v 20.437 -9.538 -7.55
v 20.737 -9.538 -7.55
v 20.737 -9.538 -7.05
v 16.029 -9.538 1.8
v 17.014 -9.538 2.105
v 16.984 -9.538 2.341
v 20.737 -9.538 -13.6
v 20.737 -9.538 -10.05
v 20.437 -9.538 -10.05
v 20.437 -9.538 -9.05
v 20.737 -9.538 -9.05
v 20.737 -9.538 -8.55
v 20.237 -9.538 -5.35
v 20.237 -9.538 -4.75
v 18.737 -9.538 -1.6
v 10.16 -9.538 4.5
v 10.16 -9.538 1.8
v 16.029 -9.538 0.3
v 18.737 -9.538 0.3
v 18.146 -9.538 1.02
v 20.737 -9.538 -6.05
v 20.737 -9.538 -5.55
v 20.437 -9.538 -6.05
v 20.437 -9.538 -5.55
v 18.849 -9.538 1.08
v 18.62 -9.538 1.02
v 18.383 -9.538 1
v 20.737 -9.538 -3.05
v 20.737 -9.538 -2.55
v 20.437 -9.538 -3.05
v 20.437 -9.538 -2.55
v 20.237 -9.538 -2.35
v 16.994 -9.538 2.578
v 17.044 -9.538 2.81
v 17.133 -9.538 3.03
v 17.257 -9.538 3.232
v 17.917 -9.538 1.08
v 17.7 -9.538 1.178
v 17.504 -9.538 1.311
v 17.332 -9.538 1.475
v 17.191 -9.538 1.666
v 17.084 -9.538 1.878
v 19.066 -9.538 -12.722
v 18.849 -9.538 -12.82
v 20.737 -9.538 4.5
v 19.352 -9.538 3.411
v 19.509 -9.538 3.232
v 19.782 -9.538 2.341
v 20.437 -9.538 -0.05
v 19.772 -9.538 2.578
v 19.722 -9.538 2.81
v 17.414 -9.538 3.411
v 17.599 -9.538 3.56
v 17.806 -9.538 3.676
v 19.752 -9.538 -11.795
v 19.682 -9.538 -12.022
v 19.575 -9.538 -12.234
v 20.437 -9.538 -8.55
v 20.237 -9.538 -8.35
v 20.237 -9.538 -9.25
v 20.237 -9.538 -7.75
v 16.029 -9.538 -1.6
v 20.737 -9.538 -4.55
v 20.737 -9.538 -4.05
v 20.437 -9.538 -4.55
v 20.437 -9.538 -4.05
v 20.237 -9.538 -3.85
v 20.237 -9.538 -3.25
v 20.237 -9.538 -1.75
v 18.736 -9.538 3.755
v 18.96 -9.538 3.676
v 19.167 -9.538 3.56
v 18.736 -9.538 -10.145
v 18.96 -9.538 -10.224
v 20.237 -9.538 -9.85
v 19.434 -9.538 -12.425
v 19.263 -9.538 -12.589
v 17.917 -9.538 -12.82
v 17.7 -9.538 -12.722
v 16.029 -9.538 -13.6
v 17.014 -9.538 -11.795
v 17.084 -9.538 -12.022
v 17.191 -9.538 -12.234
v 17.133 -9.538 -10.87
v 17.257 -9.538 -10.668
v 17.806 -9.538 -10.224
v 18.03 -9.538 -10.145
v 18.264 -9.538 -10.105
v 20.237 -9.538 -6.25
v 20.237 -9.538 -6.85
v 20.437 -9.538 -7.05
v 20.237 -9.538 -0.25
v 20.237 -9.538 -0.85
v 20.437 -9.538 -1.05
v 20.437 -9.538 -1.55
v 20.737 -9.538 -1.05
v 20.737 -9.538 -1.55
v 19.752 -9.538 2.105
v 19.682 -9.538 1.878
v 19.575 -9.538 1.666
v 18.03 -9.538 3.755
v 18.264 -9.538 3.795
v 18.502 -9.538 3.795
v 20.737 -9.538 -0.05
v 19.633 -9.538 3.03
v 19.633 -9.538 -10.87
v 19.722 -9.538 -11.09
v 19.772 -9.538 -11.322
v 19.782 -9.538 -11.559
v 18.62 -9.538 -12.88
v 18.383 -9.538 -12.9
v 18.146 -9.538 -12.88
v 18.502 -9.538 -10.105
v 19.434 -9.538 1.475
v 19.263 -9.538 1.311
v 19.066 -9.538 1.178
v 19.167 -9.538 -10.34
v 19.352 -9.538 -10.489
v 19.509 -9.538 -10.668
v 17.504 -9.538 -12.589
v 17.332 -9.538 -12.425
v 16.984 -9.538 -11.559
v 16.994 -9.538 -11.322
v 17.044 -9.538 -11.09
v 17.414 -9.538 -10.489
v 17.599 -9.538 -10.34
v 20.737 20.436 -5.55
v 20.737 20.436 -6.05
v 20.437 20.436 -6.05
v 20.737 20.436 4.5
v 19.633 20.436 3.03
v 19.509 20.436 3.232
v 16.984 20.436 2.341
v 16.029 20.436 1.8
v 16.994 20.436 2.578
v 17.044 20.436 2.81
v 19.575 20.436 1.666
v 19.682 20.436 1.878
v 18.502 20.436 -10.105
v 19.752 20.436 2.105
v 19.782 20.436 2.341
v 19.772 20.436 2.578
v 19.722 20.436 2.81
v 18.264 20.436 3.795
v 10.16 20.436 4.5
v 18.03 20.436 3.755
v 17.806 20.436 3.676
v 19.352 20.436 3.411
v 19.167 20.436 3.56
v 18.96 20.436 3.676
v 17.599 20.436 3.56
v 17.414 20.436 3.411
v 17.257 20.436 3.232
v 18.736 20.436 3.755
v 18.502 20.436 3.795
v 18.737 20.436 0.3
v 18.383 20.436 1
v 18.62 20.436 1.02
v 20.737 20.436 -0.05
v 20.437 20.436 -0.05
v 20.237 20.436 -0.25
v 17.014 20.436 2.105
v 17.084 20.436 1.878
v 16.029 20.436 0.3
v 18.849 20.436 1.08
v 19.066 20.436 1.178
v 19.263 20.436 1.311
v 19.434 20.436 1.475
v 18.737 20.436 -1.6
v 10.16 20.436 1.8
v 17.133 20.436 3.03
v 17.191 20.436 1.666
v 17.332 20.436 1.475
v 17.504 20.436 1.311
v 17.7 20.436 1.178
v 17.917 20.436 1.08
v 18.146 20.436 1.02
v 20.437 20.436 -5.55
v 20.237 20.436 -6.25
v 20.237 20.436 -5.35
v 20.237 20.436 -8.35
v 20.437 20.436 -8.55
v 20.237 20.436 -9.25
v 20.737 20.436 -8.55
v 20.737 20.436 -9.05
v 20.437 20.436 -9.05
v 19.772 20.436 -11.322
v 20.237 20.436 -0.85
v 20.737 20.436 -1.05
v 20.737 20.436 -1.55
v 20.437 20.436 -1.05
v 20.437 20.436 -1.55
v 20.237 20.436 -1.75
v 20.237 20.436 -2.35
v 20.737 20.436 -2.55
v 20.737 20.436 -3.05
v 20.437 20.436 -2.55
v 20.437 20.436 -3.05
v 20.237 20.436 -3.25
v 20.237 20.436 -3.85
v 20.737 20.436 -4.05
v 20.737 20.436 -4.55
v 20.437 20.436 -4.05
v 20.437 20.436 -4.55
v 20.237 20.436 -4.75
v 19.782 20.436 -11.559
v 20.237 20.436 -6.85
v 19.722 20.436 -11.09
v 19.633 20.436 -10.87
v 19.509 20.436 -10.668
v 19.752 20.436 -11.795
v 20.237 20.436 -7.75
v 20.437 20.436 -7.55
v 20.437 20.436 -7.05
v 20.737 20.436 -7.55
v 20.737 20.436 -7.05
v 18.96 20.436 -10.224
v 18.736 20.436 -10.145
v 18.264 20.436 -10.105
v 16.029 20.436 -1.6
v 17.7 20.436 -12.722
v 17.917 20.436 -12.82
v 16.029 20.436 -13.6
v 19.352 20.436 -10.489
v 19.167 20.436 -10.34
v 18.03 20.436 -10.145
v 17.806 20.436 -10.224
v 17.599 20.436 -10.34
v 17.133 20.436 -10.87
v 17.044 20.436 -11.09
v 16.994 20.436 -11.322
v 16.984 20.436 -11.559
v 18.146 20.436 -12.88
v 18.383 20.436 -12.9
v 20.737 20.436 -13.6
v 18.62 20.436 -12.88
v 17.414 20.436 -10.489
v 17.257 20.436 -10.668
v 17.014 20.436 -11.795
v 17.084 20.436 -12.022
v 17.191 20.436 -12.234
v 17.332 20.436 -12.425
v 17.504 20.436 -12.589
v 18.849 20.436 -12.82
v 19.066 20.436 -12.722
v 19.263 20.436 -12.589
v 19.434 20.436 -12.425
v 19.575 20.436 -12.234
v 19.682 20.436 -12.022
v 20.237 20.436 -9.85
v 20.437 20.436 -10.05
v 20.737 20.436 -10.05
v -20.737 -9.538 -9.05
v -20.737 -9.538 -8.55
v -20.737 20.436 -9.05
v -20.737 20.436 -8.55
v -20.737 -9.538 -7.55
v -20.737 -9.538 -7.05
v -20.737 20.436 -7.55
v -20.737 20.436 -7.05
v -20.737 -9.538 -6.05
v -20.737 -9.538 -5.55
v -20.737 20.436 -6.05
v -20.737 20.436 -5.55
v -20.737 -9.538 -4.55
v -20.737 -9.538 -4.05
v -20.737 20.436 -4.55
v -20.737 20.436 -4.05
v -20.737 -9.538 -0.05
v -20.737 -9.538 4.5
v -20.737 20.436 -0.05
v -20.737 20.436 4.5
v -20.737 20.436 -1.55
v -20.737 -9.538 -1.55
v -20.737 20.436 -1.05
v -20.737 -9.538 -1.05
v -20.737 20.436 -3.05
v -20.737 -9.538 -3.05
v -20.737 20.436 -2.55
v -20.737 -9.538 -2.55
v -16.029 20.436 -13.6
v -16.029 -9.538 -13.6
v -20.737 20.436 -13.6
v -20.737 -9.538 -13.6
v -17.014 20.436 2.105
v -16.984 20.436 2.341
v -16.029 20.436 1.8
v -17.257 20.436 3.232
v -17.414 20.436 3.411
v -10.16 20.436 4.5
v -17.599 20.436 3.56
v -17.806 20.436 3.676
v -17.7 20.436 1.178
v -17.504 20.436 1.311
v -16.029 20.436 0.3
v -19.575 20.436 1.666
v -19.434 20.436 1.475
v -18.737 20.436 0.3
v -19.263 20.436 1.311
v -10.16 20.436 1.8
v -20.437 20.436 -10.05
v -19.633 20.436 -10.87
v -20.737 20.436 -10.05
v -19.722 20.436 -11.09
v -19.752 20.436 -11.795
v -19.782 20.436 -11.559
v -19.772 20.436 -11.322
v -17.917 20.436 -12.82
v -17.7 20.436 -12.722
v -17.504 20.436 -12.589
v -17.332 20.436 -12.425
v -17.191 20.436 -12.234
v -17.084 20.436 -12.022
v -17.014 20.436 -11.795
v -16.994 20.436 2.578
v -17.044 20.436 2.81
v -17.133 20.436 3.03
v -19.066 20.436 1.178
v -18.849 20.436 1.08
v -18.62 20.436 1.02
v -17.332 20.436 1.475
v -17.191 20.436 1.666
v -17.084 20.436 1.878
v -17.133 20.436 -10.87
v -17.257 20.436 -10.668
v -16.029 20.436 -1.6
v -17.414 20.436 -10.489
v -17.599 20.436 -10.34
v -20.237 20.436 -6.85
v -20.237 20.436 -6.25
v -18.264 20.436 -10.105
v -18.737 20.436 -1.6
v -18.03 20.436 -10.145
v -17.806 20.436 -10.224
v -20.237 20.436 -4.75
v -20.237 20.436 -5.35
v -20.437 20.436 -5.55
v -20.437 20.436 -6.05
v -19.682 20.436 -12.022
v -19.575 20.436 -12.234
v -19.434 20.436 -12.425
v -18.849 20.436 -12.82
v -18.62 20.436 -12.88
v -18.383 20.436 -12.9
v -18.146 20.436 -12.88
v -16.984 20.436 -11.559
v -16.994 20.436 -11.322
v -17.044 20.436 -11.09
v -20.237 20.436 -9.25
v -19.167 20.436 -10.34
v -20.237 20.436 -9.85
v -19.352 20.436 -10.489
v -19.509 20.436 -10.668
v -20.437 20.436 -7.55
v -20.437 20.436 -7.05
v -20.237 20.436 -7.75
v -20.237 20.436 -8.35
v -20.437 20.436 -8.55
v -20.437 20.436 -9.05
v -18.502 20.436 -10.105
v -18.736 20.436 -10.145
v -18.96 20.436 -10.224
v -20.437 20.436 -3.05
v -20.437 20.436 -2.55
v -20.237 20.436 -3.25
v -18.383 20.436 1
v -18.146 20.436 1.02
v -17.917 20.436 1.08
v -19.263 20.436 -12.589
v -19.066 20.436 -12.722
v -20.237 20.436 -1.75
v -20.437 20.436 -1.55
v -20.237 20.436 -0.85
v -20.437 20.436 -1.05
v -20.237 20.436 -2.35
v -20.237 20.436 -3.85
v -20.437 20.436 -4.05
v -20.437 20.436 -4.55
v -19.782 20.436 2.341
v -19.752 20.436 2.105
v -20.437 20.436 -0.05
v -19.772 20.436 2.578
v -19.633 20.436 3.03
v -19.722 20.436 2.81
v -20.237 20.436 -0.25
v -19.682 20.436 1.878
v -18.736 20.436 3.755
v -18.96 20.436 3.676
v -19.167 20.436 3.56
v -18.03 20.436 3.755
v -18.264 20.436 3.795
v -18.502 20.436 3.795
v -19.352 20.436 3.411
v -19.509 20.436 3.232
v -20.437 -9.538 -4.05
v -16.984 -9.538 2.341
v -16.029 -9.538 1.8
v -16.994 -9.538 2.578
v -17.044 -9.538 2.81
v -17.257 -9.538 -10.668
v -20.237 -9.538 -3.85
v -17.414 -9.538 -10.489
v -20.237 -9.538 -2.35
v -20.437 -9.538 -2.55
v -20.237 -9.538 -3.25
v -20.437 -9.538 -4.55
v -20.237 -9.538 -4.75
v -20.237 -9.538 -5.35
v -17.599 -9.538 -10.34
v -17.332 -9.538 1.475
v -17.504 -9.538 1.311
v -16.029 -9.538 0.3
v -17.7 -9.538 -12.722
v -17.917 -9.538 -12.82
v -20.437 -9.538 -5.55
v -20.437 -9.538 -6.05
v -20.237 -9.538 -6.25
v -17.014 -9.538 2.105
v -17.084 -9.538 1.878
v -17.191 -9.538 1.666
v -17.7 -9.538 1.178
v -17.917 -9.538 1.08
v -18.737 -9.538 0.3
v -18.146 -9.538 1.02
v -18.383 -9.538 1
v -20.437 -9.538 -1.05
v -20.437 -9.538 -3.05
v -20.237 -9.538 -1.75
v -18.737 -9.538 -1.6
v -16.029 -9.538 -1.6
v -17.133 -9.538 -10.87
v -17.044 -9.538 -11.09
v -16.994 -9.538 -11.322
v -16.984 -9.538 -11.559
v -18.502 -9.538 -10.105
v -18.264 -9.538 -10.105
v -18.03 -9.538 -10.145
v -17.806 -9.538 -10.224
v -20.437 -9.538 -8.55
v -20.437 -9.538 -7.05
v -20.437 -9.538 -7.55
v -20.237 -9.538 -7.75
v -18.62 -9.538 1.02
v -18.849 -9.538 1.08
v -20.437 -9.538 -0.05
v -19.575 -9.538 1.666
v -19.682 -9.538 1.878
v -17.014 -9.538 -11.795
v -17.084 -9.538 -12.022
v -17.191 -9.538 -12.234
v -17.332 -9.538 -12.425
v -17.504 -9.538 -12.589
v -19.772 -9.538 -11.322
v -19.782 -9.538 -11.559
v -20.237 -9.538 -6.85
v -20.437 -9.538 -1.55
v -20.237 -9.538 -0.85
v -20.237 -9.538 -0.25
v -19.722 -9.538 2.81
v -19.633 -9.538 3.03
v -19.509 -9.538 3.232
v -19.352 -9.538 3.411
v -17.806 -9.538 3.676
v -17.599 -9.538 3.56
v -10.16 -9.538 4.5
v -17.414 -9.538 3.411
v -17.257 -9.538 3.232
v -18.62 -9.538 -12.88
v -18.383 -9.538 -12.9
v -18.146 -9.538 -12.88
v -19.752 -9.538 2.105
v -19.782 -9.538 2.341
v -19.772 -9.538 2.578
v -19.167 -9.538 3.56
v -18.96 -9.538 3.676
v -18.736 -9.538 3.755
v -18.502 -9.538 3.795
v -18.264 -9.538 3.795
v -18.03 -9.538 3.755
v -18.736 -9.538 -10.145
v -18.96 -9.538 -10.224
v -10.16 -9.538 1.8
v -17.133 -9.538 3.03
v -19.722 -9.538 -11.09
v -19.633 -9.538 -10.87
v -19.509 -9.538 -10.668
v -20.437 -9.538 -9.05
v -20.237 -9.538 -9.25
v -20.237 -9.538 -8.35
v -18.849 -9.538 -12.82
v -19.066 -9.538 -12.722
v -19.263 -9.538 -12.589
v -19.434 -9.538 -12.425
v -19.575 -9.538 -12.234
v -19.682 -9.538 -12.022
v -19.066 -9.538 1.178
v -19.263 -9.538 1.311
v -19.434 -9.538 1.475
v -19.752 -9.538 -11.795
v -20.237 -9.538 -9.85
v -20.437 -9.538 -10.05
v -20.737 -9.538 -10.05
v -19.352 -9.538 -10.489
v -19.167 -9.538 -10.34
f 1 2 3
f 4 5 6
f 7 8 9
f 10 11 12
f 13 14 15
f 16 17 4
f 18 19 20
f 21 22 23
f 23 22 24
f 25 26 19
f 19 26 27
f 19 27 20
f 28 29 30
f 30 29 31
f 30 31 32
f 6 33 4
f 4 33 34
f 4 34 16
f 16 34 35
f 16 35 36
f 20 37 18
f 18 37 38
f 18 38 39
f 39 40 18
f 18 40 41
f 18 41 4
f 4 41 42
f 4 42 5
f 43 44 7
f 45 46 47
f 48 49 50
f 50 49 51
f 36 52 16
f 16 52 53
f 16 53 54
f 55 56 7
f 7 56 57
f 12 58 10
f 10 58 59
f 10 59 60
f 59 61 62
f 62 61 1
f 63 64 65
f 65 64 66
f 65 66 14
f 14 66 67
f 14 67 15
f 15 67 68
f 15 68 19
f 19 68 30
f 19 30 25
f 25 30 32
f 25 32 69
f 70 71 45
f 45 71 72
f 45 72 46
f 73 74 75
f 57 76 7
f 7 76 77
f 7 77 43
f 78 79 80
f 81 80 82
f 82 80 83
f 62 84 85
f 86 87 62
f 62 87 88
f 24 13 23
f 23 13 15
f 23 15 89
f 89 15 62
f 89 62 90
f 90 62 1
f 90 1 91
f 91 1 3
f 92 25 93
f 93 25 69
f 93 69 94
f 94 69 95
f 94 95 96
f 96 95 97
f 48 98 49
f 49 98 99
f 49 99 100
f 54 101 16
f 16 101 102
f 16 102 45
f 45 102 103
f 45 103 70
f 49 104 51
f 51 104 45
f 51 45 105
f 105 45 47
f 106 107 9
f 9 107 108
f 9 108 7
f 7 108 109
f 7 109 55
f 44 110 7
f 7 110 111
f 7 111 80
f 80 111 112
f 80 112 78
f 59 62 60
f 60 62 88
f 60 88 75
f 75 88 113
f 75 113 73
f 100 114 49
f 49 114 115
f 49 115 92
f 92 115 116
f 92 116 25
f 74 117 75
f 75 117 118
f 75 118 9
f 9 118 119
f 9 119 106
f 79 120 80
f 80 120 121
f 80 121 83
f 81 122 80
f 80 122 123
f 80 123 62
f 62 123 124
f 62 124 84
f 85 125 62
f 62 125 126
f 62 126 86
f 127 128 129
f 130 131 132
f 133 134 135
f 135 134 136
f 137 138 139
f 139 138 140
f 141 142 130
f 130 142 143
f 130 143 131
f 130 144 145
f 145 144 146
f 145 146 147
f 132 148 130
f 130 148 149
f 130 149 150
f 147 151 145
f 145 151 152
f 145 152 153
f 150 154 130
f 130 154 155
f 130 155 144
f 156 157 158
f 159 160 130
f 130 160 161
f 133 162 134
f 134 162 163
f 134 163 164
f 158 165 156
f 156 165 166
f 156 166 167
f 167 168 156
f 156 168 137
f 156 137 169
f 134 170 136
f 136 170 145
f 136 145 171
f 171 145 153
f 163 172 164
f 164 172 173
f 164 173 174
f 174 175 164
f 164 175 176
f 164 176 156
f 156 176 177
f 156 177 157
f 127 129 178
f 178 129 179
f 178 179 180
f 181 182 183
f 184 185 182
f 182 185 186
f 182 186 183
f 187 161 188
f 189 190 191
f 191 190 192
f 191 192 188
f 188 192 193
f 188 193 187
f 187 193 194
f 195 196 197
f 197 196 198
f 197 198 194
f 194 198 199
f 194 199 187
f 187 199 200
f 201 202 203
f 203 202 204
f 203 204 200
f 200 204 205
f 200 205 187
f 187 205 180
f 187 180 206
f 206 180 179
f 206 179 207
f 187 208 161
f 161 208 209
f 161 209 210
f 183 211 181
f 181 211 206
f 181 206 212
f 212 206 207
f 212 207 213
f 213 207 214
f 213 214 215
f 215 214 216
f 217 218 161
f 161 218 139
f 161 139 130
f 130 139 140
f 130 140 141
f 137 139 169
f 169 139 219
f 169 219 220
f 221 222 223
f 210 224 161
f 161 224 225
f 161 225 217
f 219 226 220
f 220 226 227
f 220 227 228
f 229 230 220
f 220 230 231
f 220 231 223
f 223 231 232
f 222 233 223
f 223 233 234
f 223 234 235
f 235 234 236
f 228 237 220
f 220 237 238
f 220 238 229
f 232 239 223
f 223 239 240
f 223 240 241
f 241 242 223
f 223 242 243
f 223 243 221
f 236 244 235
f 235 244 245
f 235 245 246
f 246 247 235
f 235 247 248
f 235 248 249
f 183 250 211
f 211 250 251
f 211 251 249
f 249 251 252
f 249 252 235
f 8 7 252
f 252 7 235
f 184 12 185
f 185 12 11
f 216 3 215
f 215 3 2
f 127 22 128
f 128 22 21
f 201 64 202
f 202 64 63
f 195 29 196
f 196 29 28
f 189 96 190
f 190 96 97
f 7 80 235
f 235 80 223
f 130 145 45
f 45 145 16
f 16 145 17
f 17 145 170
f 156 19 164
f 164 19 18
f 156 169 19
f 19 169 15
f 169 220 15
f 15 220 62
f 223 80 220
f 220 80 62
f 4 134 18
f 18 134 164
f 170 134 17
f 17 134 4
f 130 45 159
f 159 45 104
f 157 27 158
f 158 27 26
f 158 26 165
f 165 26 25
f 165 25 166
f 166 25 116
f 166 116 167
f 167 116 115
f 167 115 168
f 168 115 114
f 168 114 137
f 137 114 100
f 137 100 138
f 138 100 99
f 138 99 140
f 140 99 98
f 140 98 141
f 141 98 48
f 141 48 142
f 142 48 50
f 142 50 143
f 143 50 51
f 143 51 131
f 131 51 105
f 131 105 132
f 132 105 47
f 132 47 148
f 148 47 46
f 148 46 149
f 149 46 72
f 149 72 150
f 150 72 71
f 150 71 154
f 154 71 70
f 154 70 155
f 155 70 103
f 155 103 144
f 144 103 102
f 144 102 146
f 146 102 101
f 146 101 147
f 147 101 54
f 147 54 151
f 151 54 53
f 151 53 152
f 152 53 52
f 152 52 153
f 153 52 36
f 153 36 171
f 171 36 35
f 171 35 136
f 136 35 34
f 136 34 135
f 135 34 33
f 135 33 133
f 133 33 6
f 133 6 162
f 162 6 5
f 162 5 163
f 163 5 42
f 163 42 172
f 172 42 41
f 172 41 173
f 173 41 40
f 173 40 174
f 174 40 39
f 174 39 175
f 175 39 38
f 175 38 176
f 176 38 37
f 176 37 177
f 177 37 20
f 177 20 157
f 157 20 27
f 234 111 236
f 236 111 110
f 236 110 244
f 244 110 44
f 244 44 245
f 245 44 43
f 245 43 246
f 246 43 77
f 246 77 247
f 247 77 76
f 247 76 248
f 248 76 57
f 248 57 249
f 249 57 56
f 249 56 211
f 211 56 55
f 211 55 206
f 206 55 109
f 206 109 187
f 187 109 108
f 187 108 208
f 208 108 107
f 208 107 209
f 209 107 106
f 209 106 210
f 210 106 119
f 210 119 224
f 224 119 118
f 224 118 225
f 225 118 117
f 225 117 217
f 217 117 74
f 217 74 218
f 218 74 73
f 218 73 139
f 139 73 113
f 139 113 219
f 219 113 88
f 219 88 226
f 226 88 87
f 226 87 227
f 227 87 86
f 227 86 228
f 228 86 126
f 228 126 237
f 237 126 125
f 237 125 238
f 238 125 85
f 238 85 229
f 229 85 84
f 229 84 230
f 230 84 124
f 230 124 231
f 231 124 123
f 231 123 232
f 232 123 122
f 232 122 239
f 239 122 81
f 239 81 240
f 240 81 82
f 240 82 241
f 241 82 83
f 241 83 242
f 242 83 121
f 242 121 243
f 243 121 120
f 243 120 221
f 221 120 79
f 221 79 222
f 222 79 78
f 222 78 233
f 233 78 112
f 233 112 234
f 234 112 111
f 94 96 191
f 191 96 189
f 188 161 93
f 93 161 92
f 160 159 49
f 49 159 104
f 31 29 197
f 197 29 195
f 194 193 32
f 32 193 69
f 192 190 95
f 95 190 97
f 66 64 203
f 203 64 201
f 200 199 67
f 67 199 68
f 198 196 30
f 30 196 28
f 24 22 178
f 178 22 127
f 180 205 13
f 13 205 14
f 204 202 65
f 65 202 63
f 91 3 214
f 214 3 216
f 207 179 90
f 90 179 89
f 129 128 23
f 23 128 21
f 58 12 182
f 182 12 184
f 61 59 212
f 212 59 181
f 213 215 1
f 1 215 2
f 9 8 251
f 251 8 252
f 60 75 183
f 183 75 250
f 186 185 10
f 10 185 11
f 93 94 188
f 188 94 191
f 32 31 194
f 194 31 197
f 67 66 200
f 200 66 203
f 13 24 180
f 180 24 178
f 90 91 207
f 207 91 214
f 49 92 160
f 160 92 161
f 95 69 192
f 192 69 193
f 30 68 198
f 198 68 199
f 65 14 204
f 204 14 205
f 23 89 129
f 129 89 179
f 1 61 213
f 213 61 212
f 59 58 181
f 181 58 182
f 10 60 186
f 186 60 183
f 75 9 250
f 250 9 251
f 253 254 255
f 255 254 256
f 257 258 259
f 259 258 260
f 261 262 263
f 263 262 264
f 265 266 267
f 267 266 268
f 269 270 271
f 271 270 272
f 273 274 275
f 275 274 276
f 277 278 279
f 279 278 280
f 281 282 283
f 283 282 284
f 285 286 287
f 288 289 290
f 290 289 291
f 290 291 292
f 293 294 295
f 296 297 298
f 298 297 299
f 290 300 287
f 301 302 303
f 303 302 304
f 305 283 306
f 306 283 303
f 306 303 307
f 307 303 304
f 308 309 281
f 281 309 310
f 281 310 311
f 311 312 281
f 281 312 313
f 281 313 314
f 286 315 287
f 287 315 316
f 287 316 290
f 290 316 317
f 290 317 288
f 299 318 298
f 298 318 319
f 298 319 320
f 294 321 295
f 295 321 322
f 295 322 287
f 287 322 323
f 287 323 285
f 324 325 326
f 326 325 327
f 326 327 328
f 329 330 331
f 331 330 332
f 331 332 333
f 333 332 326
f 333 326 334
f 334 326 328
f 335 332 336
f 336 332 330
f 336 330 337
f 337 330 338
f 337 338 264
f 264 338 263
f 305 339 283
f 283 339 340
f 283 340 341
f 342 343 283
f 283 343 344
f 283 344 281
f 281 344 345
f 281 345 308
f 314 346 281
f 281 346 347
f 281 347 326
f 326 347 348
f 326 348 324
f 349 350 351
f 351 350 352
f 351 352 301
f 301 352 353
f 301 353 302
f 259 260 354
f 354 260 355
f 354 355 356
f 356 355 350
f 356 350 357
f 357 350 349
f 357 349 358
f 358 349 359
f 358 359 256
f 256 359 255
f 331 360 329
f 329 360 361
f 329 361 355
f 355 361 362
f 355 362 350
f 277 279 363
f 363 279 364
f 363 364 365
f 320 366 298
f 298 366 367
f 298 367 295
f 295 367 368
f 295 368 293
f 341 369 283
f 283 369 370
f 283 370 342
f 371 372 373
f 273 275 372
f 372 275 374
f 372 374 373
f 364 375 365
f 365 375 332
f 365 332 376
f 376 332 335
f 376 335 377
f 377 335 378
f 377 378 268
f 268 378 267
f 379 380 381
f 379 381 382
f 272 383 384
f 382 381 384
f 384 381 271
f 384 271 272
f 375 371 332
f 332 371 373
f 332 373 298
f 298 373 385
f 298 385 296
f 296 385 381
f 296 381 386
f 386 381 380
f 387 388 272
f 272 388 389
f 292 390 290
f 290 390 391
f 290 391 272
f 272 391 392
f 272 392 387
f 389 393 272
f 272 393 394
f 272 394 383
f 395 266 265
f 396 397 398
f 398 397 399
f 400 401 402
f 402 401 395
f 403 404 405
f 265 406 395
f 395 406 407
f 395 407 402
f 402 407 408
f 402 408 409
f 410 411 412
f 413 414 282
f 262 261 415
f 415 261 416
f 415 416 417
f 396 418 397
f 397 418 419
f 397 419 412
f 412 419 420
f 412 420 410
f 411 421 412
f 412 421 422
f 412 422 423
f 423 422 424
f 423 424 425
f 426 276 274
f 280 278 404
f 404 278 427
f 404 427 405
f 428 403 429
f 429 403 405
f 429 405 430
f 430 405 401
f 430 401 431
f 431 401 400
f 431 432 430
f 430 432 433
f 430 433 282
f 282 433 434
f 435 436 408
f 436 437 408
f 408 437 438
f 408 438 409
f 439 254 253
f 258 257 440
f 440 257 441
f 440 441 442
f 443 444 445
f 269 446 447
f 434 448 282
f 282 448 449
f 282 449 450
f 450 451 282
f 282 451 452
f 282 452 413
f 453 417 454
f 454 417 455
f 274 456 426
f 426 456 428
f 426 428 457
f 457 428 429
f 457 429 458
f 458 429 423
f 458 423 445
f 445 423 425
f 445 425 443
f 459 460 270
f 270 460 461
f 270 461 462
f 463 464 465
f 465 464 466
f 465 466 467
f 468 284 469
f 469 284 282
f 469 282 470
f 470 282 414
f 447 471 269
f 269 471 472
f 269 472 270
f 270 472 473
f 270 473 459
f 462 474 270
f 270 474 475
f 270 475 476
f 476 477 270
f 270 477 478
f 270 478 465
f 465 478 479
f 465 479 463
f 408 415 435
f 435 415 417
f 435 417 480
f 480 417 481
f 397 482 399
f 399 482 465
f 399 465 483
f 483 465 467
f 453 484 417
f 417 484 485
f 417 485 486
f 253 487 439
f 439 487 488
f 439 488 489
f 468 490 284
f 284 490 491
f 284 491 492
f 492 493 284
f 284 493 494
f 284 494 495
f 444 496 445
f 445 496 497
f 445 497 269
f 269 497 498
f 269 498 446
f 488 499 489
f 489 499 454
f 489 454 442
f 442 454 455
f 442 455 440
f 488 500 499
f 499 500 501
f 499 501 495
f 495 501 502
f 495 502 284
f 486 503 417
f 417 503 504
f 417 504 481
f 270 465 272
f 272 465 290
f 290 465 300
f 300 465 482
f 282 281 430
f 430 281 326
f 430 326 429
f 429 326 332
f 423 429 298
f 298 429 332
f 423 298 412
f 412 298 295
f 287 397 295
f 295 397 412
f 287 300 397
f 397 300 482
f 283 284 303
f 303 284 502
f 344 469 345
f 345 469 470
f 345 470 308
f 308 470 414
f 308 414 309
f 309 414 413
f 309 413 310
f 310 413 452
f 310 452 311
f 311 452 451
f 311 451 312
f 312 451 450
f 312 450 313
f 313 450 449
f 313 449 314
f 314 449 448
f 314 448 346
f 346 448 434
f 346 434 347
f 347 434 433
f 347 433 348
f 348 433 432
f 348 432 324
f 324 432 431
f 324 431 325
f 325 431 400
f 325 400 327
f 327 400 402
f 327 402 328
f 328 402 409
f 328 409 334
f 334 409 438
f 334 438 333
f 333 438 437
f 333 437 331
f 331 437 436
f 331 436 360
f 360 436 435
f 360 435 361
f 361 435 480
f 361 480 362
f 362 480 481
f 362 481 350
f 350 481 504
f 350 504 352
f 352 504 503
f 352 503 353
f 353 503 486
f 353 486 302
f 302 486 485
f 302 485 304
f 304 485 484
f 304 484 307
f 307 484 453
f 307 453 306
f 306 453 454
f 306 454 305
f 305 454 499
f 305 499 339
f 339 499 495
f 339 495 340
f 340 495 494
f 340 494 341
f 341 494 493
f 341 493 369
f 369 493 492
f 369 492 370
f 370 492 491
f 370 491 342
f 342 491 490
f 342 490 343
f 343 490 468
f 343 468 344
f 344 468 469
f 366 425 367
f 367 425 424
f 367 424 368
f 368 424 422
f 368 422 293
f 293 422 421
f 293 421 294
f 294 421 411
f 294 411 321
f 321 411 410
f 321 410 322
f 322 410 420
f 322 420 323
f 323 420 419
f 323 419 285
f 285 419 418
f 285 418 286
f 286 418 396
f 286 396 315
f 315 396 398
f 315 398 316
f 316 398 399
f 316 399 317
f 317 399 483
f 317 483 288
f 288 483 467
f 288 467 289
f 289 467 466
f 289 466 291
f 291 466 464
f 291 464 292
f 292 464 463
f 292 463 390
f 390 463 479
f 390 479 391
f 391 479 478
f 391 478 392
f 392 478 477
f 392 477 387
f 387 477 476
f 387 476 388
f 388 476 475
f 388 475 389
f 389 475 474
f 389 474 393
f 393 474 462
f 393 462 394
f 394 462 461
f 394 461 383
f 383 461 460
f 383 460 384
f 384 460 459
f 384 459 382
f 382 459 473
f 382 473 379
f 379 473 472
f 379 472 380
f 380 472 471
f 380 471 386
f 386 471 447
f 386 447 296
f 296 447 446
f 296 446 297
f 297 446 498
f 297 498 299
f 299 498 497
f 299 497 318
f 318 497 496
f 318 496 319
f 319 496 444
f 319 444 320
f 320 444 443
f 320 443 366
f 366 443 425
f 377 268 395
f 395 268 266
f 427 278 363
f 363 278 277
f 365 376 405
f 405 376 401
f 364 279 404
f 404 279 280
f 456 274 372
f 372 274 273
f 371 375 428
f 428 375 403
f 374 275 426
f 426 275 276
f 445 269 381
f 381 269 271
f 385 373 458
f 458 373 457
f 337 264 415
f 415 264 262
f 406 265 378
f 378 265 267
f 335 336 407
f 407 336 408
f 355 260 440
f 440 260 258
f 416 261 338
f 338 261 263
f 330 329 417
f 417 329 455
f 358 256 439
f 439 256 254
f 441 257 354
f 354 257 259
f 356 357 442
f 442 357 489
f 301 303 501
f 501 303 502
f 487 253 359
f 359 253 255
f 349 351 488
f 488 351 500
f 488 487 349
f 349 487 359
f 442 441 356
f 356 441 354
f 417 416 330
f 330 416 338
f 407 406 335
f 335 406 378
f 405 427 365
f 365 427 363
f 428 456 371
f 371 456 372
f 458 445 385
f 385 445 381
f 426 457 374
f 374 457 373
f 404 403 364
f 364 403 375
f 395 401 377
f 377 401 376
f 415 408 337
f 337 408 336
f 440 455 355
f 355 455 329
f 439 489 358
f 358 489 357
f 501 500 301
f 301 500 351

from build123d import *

# Parameters (mm, degrees)
SKETCH_1_W          = 37.47467615
SKETCH_1_H          = 29.97466091
EXTRUDE_1_DEPTH     = 3
SKETCH_2_W          = 3
SKETCH_2_H          = 29.97466091
EXTRUDE_2_DEPTH     = 3
SKETCH_3_W          = 3
SKETCH_3_H          = 29.97466091
EXTRUDE_3_DEPTH     = 3
SKETCH_4_W          = 3
SKETCH_4_H          = 29.97466091
EXTRUDE_4_DEPTH     = 1.6
EXTRUDE_7_DEPTH     = 12.000023
SKETCH_7_W          = 37.47467615
SKETCH_7_H          = 29.97466091
CUT_EXTRUDE_1_DEPTH = 0.3
SKETCH_8_W          = 20.320035554
SKETCH_8_H          = 29.97466091
CUT_EXTRUDE_3_DEPTH = 2.7
SKETCH_9_W          = 5.86876683
SKETCH_9_H          = 29.97466091
CUT_EXTRUDE_4_DEPTH = 1.5
SKETCH_10_W         = 11.577320298
SKETCH_10_H         = 29.97466091
EXTRUDE_8_DEPTH     = 1.5
SKETCH_11_W         = 18.100023376
SKETCH_11_H         = 29.97466091
CUT_EXTRUDE_5_DEPTH = 1
SKETCH_12_W         = 18.100023376
SKETCH_12_H         = 29.97466091
CUT_EXTRUDE_6_DEPTH = 1
CUT_EXTRUDE_7_REACH = 40.903
SKETCH_14_R         = 1.4
CUT_EXTRUDE_8_REACH = 40.903
SKETCH_16_W         = 0.5
SKETCH_16_H         = 1
CHAMFER_1_SIZE      = 0.2
CHAMFER_2_SIZE      = 0.2


with BuildPart() as part:
    # 草图1 → 凸台-拉伸1 (new body)
    with BuildSketch(Plane.XY):
        with Locations((0, 5.449009398)):
            Rectangle(SKETCH_1_W, SKETCH_1_H)
    extrude(amount=EXTRUDE_1_DEPTH)

    # 草图2 → 凸台-拉伸2 (add)
    with BuildSketch(Plane.ZY.offset(18.737338075)):
        with Locations((1.5, 5.449009398)):
            Rectangle(SKETCH_2_W, SKETCH_2_H)
    extrude(amount=EXTRUDE_2_DEPTH)

    # 草图3 → 凸台-拉伸3 (add)
    with BuildSketch(Plane(origin=(18.737338075, 0, 0), x_dir=(0, 0, -1), z_dir=(1, 0, 0))):
        with Locations((-1.5, 5.449009398)):
            Rectangle(SKETCH_3_W, SKETCH_3_H)
    extrude(amount=EXTRUDE_3_DEPTH)

    # 草图4 → 凸台-拉伸4 (add)
    with BuildSketch(Plane(origin=(0, 0, 0), x_dir=(-1, 0, 0), z_dir=(0, 0, -1))):
        with Locations((-20.237338075, 5.449009398)):
            Rectangle(SKETCH_4_W, SKETCH_4_H)
        with Locations((20.237338075, 5.449009398)):
            Rectangle(SKETCH_4_W, SKETCH_4_H)
    extrude(amount=EXTRUDE_4_DEPTH)

    # 草图5 → 凸台-拉伸7 (add)
    with BuildSketch(Plane(origin=(0, 0, -1.6), x_dir=(-1, 0, 0), z_dir=(0, 0, -1))):
        Polygon((-18.737338075, -9.538321057), (-16.028784607, -9.538321057), (-16.028784607, 20.436339853), (-18.737338075, 20.436339853), (-21.737338075, 20.436339853), (-21.737338075, -9.538321057), align=None)
        Polygon((18.737338075, 20.436339853), (21.737338075, 20.436339853), (21.737338075, -9.538321057), (18.737338075, -9.538321057), (16.028784607, -9.538321057), (16.028784607, 20.436339853), align=None)
    extrude(amount=EXTRUDE_7_DEPTH)

    # 草图7 → 切除-拉伸1 (cut)
    with BuildSketch(Plane(origin=(0, 0, 0), x_dir=(-1, 0, 0), z_dir=(0, 0, -1))):
        with Locations((0, 5.449009398)):
            Rectangle(SKETCH_7_W, SKETCH_7_H)
    extrude(amount=-CUT_EXTRUDE_1_DEPTH, mode=Mode.SUBTRACT)

    # 草图8 → 切除-拉伸3 (cut)
    with BuildSketch(Plane.XY.offset(3)):
        with Locations((0, 5.449009398)):
            Rectangle(SKETCH_8_W, SKETCH_8_H)
    extrude(amount=-CUT_EXTRUDE_3_DEPTH, mode=Mode.SUBTRACT)


with BuildPart() as cut_extrude_3_piece_1:
    # of the separate pieces the step leaves, piece 1, a body of its own (cut_extrude_3_pieces)
    add(part.part.solids().sort_by_distance((-21.737338075, -9.538321057, 3))[0])


with BuildPart() as cut_extrude_3_piece_2:
    # of the separate pieces the step leaves, piece 2, a body of its own (cut_extrude_3_pieces)
    add(part.part.solids().sort_by_distance((10.160017777, -9.538321057, 3))[0])


with BuildPart() as cut_extrude_4_tool:
    # 草图9 → 切除-拉伸4 (new body)
    with BuildSketch(Plane(origin=(0, 0, 0.3), x_dir=(-1, 0, 0), z_dir=(0, 0, -1))):
        with Locations((13.094401192, 5.449009398)):
            Rectangle(SKETCH_9_W, SKETCH_9_H)
        with Locations((-13.094401192, 5.449009398)):
            Rectangle(SKETCH_9_W, SKETCH_9_H)
    extrude(amount=-CUT_EXTRUDE_4_DEPTH)


with BuildPart() as cut_extrude_3_piece_1_1:
    add(cut_extrude_3_piece_1.part)

    # 切除-拉伸4: cut by cut_extrude_4_tool
    add(cut_extrude_4_tool.part, mode=Mode.SUBTRACT)



with BuildPart() as cut_extrude_3_piece_2_1:
    add(cut_extrude_3_piece_2.part)

    # 切除-拉伸4: cut by cut_extrude_4_tool
    add(cut_extrude_4_tool.part, mode=Mode.SUBTRACT)


with BuildPart() as cut_extrude_3_piece_1_2:
    add(cut_extrude_3_piece_1_1.part)

    add(cut_extrude_3_piece_2_1.part)  # 凸台-拉伸8 merges 切除-拉伸3 piece 2
    # 草图10 → 凸台-拉伸8 (add)
    with BuildSketch(Plane.XY.offset(3)):
        with Locations((-15.948677926, 5.449009398)):
            Rectangle(SKETCH_10_W, SKETCH_10_H)
        with Locations((15.948677926, 5.449009398)):
            Rectangle(SKETCH_10_W, SKETCH_10_H)
    extrude(amount=EXTRUDE_8_DEPTH)

    # 草图11 → 切除-拉伸5 (cut)
    with BuildSketch(Plane(origin=(21.737338075, 0, 0), x_dir=(0, 0, -1), z_dir=(1, 0, 0))):
        with Locations((4.550011688, 5.449009398)):
            Rectangle(SKETCH_11_W, SKETCH_11_H)
    extrude(amount=-CUT_EXTRUDE_5_DEPTH, mode=Mode.SUBTRACT)

    # 草图12 → 切除-拉伸6 (cut)
    with BuildSketch(Plane.ZY.offset(21.737338075)):
        with Locations((-4.550011688, 5.449009398)):
            Rectangle(SKETCH_12_W, SKETCH_12_H)
    extrude(amount=-CUT_EXTRUDE_6_DEPTH, mode=Mode.SUBTRACT)

    # 草图14 → 切除-拉伸7 (cut, up to next)
    with BuildSketch(Plane.XZ.offset(9.538321057), mode=Mode.PRIVATE) as cut_extrude_7_sk1:
        with Locations(Location((18.383061341, -11.500023376, 0), (0, 0, 270))):
            Circle(SKETCH_14_R)
    cut_extrude_7_tool1 = extrude(cut_extrude_7_sk1.sketch, amount=-CUT_EXTRUDE_7_REACH, mode=Mode.PRIVATE) & cut_extrude_3_piece_1_2.part
    # 草图14 → 切除-拉伸7 (cut, up to next)
    with BuildSketch(Plane.XZ.offset(9.538321057), mode=Mode.PRIVATE) as cut_extrude_7_sk2:
        with Locations(Location((18.383061341, 2.4, 0), (0, 0, 270))):
            Circle(SKETCH_14_R)
    cut_extrude_7_tool2 = extrude(cut_extrude_7_sk2.sketch, amount=-CUT_EXTRUDE_7_REACH, mode=Mode.PRIVATE) & cut_extrude_3_piece_1_2.part
    # 草图14 → 切除-拉伸7 (cut, up to next)
    with BuildSketch(Plane.XZ.offset(9.538321057), mode=Mode.PRIVATE) as cut_extrude_7_sk3:
        with Locations(Location((-18.383061341, 2.4, 0), (0, 0, 270))):
            Circle(SKETCH_14_R)
    cut_extrude_7_tool3 = extrude(cut_extrude_7_sk3.sketch, amount=-CUT_EXTRUDE_7_REACH, mode=Mode.PRIVATE) & cut_extrude_3_piece_1_2.part
    # 草图14 → 切除-拉伸7 (cut, up to next)
    with BuildSketch(Plane.XZ.offset(9.538321057), mode=Mode.PRIVATE) as cut_extrude_7_sk4:
        with Locations(Location((-18.383061341, -11.500023376, 0), (0, 0, 270))):
            Circle(SKETCH_14_R)
    cut_extrude_7_tool4 = extrude(cut_extrude_7_sk4.sketch, amount=-CUT_EXTRUDE_7_REACH, mode=Mode.PRIVATE) & cut_extrude_3_piece_1_2.part
    add(cut_extrude_7_tool1.solids().sort_by_distance((18.383061, -9.538321, -11.500023))[0], mode=Mode.SUBTRACT)
    add(cut_extrude_7_tool2.solids().sort_by_distance((18.383061, -9.538321, 2.4))[0], mode=Mode.SUBTRACT)
    add(cut_extrude_7_tool3.solids().sort_by_distance((-18.383061, -9.538321, 2.4))[0], mode=Mode.SUBTRACT)
    add(cut_extrude_7_tool4.solids().sort_by_distance((-18.383061, -9.538321, -11.500023))[0], mode=Mode.SUBTRACT)

    # 草图16 → 切除-拉伸8 (cut, up to next)
    with BuildSketch(Plane.XZ.offset(9.538321057), mode=Mode.PRIVATE) as cut_extrude_8_sk1:
        with Locations((20.487338075, -9.550011688)):
            Rectangle(SKETCH_16_W, SKETCH_16_H)
    cut_extrude_8_tool1 = extrude(cut_extrude_8_sk1.sketch, amount=-CUT_EXTRUDE_8_REACH, mode=Mode.PRIVATE) & cut_extrude_3_piece_1_2.part
    # 草图16 → 切除-拉伸8 (cut, up to next)
    with BuildSketch(Plane.XZ.offset(9.538321057), mode=Mode.PRIVATE) as cut_extrude_8_sk2:
        with Locations((20.487338075, -8.050011688)):
            Rectangle(SKETCH_16_W, SKETCH_16_H)
    cut_extrude_8_tool2 = extrude(cut_extrude_8_sk2.sketch, amount=-CUT_EXTRUDE_8_REACH, mode=Mode.PRIVATE) & cut_extrude_3_piece_1_2.part
    # 草图16 → 切除-拉伸8 (cut, up to next)
    with BuildSketch(Plane.XZ.offset(9.538321057), mode=Mode.PRIVATE) as cut_extrude_8_sk3:
        with Locations((20.487338075, -6.550011688)):
            Rectangle(SKETCH_16_W, SKETCH_16_H)
    cut_extrude_8_tool3 = extrude(cut_extrude_8_sk3.sketch, amount=-CUT_EXTRUDE_8_REACH, mode=Mode.PRIVATE) & cut_extrude_3_piece_1_2.part
    # 草图16 → 切除-拉伸8 (cut, up to next)
    with BuildSketch(Plane.XZ.offset(9.538321057), mode=Mode.PRIVATE) as cut_extrude_8_sk4:
        with Locations((20.487338075, -5.050011688)):
            Rectangle(SKETCH_16_W, SKETCH_16_H)
    cut_extrude_8_tool4 = extrude(cut_extrude_8_sk4.sketch, amount=-CUT_EXTRUDE_8_REACH, mode=Mode.PRIVATE) & cut_extrude_3_piece_1_2.part
    # 草图16 → 切除-拉伸8 (cut, up to next)
    with BuildSketch(Plane.XZ.offset(9.538321057), mode=Mode.PRIVATE) as cut_extrude_8_sk5:
        with Locations((20.487338075, -3.550011688)):
            Rectangle(SKETCH_16_W, SKETCH_16_H)
    cut_extrude_8_tool5 = extrude(cut_extrude_8_sk5.sketch, amount=-CUT_EXTRUDE_8_REACH, mode=Mode.PRIVATE) & cut_extrude_3_piece_1_2.part
    # 草图16 → 切除-拉伸8 (cut, up to next)
    with BuildSketch(Plane.XZ.offset(9.538321057), mode=Mode.PRIVATE) as cut_extrude_8_sk6:
        with Locations((20.487338075, -2.050011688)):
            Rectangle(SKETCH_16_W, SKETCH_16_H)
    cut_extrude_8_tool6 = extrude(cut_extrude_8_sk6.sketch, amount=-CUT_EXTRUDE_8_REACH, mode=Mode.PRIVATE) & cut_extrude_3_piece_1_2.part
    # 草图16 → 切除-拉伸8 (cut, up to next)
    with BuildSketch(Plane.XZ.offset(9.538321057), mode=Mode.PRIVATE) as cut_extrude_8_sk7:
        with Locations((20.487338075, -0.550011688)):
            Rectangle(SKETCH_16_W, SKETCH_16_H)
    cut_extrude_8_tool7 = extrude(cut_extrude_8_sk7.sketch, amount=-CUT_EXTRUDE_8_REACH, mode=Mode.PRIVATE) & cut_extrude_3_piece_1_2.part
    # 草图16 → 切除-拉伸8 (cut, up to next)
    with BuildSketch(Plane.XZ.offset(9.538321057), mode=Mode.PRIVATE) as cut_extrude_8_sk8:
        with Locations((-20.487338075, -9.550011688)):
            Rectangle(SKETCH_16_W, SKETCH_16_H)
    cut_extrude_8_tool8 = extrude(cut_extrude_8_sk8.sketch, amount=-CUT_EXTRUDE_8_REACH, mode=Mode.PRIVATE) & cut_extrude_3_piece_1_2.part
    # 草图16 → 切除-拉伸8 (cut, up to next)
    with BuildSketch(Plane.XZ.offset(9.538321057), mode=Mode.PRIVATE) as cut_extrude_8_sk9:
        with Locations((-20.487338075, -8.050011688)):
            Rectangle(SKETCH_16_W, SKETCH_16_H)
    cut_extrude_8_tool9 = extrude(cut_extrude_8_sk9.sketch, amount=-CUT_EXTRUDE_8_REACH, mode=Mode.PRIVATE) & cut_extrude_3_piece_1_2.part
    # 草图16 → 切除-拉伸8 (cut, up to next)
    with BuildSketch(Plane.XZ.offset(9.538321057), mode=Mode.PRIVATE) as cut_extrude_8_sk10:
        with Locations((-20.487338075, -6.550011688)):
            Rectangle(SKETCH_16_W, SKETCH_16_H)
    cut_extrude_8_tool10 = extrude(cut_extrude_8_sk10.sketch, amount=-CUT_EXTRUDE_8_REACH, mode=Mode.PRIVATE) & cut_extrude_3_piece_1_2.part
    # 草图16 → 切除-拉伸8 (cut, up to next)
    with BuildSketch(Plane.XZ.offset(9.538321057), mode=Mode.PRIVATE) as cut_extrude_8_sk11:
        with Locations((-20.487338075, -5.050011688)):
            Rectangle(SKETCH_16_W, SKETCH_16_H)
    cut_extrude_8_tool11 = extrude(cut_extrude_8_sk11.sketch, amount=-CUT_EXTRUDE_8_REACH, mode=Mode.PRIVATE) & cut_extrude_3_piece_1_2.part
    # 草图16 → 切除-拉伸8 (cut, up to next)
    with BuildSketch(Plane.XZ.offset(9.538321057), mode=Mode.PRIVATE) as cut_extrude_8_sk12:
        with Locations((-20.487338075, -0.550011688)):
            Rectangle(SKETCH_16_W, SKETCH_16_H)
    cut_extrude_8_tool12 = extrude(cut_extrude_8_sk12.sketch, amount=-CUT_EXTRUDE_8_REACH, mode=Mode.PRIVATE) & cut_extrude_3_piece_1_2.part
    # 草图16 → 切除-拉伸8 (cut, up to next)
    with BuildSketch(Plane.XZ.offset(9.538321057), mode=Mode.PRIVATE) as cut_extrude_8_sk13:
        with Locations((-20.487338075, -2.050011688)):
            Rectangle(SKETCH_16_W, SKETCH_16_H)
    cut_extrude_8_tool13 = extrude(cut_extrude_8_sk13.sketch, amount=-CUT_EXTRUDE_8_REACH, mode=Mode.PRIVATE) & cut_extrude_3_piece_1_2.part
    # 草图16 → 切除-拉伸8 (cut, up to next)
    with BuildSketch(Plane.XZ.offset(9.538321057), mode=Mode.PRIVATE) as cut_extrude_8_sk14:
        with Locations((-20.487338075, -3.550011688)):
            Rectangle(SKETCH_16_W, SKETCH_16_H)
    cut_extrude_8_tool14 = extrude(cut_extrude_8_sk14.sketch, amount=-CUT_EXTRUDE_8_REACH, mode=Mode.PRIVATE) & cut_extrude_3_piece_1_2.part
    add(cut_extrude_8_tool1.solids().sort_by_distance((20.487338, -9.538321, -9.550012))[0], mode=Mode.SUBTRACT)
    add(cut_extrude_8_tool2.solids().sort_by_distance((20.487338, -9.538321, -8.050012))[0], mode=Mode.SUBTRACT)
    add(cut_extrude_8_tool3.solids().sort_by_distance((20.487338, -9.538321, -6.550012))[0], mode=Mode.SUBTRACT)
    add(cut_extrude_8_tool4.solids().sort_by_distance((20.487338, -9.538321, -5.050012))[0], mode=Mode.SUBTRACT)
    add(cut_extrude_8_tool5.solids().sort_by_distance((20.487338, -9.538321, -3.550012))[0], mode=Mode.SUBTRACT)
    add(cut_extrude_8_tool6.solids().sort_by_distance((20.487338, -9.538321, -2.050012))[0], mode=Mode.SUBTRACT)
    add(cut_extrude_8_tool7.solids().sort_by_distance((20.487338, -9.538321, -0.550012))[0], mode=Mode.SUBTRACT)
    add(cut_extrude_8_tool8.solids().sort_by_distance((-20.487338, -9.538321, -9.550012))[0], mode=Mode.SUBTRACT)
    add(cut_extrude_8_tool9.solids().sort_by_distance((-20.487338, -9.538321, -8.050012))[0], mode=Mode.SUBTRACT)
    add(cut_extrude_8_tool10.solids().sort_by_distance((-20.487338, -9.538321, -6.550012))[0], mode=Mode.SUBTRACT)
    add(cut_extrude_8_tool11.solids().sort_by_distance((-20.487338, -9.538321, -5.050012))[0], mode=Mode.SUBTRACT)
    add(cut_extrude_8_tool12.solids().sort_by_distance((-20.487338, -9.538321, -0.550012))[0], mode=Mode.SUBTRACT)
    add(cut_extrude_8_tool13.solids().sort_by_distance((-20.487338, -9.538321, -2.050012))[0], mode=Mode.SUBTRACT)
    add(cut_extrude_8_tool14.solids().sort_by_distance((-20.487338, -9.538321, -3.550012))[0], mode=Mode.SUBTRACT)

    # 倒角1
    chamfer_1_edges = [cut_extrude_3_piece_1_2.edges().sort_by_distance(p)[0] for p in [
        (20.237338075, 5.449009398, -10.050011688),
        (20.237338075, 5.449009398, -9.050011688),
        (20.237338075, 5.449009398, -8.550011688),
        (20.237338075, 5.449009398, -7.550011688),
        (20.237338075, 5.449009398, -7.050011688),
        (20.237338075, 5.449009398, -6.050011688),
        (20.237338075, 5.449009398, -5.550011688),
        (20.237338075, 5.449009398, -4.550011688),
        (20.237338075, 5.449009398, -4.050011688),
        (20.237338075, 5.449009398, -3.050011688),
        (20.237338075, 5.449009398, -2.550011688),
        (20.237338075, 5.449009398, -1.550011688),
        (20.237338075, 5.449009398, -1.050011688),
        (20.237338075, 5.449009398, -0.050011688),
    ]]
    chamfer(chamfer_1_edges, length=CHAMFER_1_SIZE)

    # 倒角2
    chamfer_2_edges = [cut_extrude_3_piece_1_2.edges().sort_by_distance(p)[0] for p in [
        (-20.237338075, 5.449009398, -10.050011688),
        (-20.237338075, 5.449009398, -9.050011688),
        (-20.237338075, 5.449009398, -8.550011688),
        (-20.237338075, 5.449009398, -7.550011688),
        (-20.237338075, 5.449009398, -7.050011688),
        (-20.237338075, 5.449009398, -6.050011688),
        (-20.237338075, 5.449009398, -5.550011688),
        (-20.237338075, 5.449009398, -4.550011688),
        (-20.237338075, 5.449009398, -1.050011688),
        (-20.237338075, 5.449009398, -0.050011688),
        (-20.237338075, 5.449009398, -2.550011688),
        (-20.237338075, 5.449009398, -1.550011688),
        (-20.237338075, 5.449009398, -4.050011688),
        (-20.237338075, 5.449009398, -3.050011688),
    ]]
    chamfer(chamfer_2_edges, length=CHAMFER_2_SIZE)


solid = cut_extrude_3_piece_1_2.part
